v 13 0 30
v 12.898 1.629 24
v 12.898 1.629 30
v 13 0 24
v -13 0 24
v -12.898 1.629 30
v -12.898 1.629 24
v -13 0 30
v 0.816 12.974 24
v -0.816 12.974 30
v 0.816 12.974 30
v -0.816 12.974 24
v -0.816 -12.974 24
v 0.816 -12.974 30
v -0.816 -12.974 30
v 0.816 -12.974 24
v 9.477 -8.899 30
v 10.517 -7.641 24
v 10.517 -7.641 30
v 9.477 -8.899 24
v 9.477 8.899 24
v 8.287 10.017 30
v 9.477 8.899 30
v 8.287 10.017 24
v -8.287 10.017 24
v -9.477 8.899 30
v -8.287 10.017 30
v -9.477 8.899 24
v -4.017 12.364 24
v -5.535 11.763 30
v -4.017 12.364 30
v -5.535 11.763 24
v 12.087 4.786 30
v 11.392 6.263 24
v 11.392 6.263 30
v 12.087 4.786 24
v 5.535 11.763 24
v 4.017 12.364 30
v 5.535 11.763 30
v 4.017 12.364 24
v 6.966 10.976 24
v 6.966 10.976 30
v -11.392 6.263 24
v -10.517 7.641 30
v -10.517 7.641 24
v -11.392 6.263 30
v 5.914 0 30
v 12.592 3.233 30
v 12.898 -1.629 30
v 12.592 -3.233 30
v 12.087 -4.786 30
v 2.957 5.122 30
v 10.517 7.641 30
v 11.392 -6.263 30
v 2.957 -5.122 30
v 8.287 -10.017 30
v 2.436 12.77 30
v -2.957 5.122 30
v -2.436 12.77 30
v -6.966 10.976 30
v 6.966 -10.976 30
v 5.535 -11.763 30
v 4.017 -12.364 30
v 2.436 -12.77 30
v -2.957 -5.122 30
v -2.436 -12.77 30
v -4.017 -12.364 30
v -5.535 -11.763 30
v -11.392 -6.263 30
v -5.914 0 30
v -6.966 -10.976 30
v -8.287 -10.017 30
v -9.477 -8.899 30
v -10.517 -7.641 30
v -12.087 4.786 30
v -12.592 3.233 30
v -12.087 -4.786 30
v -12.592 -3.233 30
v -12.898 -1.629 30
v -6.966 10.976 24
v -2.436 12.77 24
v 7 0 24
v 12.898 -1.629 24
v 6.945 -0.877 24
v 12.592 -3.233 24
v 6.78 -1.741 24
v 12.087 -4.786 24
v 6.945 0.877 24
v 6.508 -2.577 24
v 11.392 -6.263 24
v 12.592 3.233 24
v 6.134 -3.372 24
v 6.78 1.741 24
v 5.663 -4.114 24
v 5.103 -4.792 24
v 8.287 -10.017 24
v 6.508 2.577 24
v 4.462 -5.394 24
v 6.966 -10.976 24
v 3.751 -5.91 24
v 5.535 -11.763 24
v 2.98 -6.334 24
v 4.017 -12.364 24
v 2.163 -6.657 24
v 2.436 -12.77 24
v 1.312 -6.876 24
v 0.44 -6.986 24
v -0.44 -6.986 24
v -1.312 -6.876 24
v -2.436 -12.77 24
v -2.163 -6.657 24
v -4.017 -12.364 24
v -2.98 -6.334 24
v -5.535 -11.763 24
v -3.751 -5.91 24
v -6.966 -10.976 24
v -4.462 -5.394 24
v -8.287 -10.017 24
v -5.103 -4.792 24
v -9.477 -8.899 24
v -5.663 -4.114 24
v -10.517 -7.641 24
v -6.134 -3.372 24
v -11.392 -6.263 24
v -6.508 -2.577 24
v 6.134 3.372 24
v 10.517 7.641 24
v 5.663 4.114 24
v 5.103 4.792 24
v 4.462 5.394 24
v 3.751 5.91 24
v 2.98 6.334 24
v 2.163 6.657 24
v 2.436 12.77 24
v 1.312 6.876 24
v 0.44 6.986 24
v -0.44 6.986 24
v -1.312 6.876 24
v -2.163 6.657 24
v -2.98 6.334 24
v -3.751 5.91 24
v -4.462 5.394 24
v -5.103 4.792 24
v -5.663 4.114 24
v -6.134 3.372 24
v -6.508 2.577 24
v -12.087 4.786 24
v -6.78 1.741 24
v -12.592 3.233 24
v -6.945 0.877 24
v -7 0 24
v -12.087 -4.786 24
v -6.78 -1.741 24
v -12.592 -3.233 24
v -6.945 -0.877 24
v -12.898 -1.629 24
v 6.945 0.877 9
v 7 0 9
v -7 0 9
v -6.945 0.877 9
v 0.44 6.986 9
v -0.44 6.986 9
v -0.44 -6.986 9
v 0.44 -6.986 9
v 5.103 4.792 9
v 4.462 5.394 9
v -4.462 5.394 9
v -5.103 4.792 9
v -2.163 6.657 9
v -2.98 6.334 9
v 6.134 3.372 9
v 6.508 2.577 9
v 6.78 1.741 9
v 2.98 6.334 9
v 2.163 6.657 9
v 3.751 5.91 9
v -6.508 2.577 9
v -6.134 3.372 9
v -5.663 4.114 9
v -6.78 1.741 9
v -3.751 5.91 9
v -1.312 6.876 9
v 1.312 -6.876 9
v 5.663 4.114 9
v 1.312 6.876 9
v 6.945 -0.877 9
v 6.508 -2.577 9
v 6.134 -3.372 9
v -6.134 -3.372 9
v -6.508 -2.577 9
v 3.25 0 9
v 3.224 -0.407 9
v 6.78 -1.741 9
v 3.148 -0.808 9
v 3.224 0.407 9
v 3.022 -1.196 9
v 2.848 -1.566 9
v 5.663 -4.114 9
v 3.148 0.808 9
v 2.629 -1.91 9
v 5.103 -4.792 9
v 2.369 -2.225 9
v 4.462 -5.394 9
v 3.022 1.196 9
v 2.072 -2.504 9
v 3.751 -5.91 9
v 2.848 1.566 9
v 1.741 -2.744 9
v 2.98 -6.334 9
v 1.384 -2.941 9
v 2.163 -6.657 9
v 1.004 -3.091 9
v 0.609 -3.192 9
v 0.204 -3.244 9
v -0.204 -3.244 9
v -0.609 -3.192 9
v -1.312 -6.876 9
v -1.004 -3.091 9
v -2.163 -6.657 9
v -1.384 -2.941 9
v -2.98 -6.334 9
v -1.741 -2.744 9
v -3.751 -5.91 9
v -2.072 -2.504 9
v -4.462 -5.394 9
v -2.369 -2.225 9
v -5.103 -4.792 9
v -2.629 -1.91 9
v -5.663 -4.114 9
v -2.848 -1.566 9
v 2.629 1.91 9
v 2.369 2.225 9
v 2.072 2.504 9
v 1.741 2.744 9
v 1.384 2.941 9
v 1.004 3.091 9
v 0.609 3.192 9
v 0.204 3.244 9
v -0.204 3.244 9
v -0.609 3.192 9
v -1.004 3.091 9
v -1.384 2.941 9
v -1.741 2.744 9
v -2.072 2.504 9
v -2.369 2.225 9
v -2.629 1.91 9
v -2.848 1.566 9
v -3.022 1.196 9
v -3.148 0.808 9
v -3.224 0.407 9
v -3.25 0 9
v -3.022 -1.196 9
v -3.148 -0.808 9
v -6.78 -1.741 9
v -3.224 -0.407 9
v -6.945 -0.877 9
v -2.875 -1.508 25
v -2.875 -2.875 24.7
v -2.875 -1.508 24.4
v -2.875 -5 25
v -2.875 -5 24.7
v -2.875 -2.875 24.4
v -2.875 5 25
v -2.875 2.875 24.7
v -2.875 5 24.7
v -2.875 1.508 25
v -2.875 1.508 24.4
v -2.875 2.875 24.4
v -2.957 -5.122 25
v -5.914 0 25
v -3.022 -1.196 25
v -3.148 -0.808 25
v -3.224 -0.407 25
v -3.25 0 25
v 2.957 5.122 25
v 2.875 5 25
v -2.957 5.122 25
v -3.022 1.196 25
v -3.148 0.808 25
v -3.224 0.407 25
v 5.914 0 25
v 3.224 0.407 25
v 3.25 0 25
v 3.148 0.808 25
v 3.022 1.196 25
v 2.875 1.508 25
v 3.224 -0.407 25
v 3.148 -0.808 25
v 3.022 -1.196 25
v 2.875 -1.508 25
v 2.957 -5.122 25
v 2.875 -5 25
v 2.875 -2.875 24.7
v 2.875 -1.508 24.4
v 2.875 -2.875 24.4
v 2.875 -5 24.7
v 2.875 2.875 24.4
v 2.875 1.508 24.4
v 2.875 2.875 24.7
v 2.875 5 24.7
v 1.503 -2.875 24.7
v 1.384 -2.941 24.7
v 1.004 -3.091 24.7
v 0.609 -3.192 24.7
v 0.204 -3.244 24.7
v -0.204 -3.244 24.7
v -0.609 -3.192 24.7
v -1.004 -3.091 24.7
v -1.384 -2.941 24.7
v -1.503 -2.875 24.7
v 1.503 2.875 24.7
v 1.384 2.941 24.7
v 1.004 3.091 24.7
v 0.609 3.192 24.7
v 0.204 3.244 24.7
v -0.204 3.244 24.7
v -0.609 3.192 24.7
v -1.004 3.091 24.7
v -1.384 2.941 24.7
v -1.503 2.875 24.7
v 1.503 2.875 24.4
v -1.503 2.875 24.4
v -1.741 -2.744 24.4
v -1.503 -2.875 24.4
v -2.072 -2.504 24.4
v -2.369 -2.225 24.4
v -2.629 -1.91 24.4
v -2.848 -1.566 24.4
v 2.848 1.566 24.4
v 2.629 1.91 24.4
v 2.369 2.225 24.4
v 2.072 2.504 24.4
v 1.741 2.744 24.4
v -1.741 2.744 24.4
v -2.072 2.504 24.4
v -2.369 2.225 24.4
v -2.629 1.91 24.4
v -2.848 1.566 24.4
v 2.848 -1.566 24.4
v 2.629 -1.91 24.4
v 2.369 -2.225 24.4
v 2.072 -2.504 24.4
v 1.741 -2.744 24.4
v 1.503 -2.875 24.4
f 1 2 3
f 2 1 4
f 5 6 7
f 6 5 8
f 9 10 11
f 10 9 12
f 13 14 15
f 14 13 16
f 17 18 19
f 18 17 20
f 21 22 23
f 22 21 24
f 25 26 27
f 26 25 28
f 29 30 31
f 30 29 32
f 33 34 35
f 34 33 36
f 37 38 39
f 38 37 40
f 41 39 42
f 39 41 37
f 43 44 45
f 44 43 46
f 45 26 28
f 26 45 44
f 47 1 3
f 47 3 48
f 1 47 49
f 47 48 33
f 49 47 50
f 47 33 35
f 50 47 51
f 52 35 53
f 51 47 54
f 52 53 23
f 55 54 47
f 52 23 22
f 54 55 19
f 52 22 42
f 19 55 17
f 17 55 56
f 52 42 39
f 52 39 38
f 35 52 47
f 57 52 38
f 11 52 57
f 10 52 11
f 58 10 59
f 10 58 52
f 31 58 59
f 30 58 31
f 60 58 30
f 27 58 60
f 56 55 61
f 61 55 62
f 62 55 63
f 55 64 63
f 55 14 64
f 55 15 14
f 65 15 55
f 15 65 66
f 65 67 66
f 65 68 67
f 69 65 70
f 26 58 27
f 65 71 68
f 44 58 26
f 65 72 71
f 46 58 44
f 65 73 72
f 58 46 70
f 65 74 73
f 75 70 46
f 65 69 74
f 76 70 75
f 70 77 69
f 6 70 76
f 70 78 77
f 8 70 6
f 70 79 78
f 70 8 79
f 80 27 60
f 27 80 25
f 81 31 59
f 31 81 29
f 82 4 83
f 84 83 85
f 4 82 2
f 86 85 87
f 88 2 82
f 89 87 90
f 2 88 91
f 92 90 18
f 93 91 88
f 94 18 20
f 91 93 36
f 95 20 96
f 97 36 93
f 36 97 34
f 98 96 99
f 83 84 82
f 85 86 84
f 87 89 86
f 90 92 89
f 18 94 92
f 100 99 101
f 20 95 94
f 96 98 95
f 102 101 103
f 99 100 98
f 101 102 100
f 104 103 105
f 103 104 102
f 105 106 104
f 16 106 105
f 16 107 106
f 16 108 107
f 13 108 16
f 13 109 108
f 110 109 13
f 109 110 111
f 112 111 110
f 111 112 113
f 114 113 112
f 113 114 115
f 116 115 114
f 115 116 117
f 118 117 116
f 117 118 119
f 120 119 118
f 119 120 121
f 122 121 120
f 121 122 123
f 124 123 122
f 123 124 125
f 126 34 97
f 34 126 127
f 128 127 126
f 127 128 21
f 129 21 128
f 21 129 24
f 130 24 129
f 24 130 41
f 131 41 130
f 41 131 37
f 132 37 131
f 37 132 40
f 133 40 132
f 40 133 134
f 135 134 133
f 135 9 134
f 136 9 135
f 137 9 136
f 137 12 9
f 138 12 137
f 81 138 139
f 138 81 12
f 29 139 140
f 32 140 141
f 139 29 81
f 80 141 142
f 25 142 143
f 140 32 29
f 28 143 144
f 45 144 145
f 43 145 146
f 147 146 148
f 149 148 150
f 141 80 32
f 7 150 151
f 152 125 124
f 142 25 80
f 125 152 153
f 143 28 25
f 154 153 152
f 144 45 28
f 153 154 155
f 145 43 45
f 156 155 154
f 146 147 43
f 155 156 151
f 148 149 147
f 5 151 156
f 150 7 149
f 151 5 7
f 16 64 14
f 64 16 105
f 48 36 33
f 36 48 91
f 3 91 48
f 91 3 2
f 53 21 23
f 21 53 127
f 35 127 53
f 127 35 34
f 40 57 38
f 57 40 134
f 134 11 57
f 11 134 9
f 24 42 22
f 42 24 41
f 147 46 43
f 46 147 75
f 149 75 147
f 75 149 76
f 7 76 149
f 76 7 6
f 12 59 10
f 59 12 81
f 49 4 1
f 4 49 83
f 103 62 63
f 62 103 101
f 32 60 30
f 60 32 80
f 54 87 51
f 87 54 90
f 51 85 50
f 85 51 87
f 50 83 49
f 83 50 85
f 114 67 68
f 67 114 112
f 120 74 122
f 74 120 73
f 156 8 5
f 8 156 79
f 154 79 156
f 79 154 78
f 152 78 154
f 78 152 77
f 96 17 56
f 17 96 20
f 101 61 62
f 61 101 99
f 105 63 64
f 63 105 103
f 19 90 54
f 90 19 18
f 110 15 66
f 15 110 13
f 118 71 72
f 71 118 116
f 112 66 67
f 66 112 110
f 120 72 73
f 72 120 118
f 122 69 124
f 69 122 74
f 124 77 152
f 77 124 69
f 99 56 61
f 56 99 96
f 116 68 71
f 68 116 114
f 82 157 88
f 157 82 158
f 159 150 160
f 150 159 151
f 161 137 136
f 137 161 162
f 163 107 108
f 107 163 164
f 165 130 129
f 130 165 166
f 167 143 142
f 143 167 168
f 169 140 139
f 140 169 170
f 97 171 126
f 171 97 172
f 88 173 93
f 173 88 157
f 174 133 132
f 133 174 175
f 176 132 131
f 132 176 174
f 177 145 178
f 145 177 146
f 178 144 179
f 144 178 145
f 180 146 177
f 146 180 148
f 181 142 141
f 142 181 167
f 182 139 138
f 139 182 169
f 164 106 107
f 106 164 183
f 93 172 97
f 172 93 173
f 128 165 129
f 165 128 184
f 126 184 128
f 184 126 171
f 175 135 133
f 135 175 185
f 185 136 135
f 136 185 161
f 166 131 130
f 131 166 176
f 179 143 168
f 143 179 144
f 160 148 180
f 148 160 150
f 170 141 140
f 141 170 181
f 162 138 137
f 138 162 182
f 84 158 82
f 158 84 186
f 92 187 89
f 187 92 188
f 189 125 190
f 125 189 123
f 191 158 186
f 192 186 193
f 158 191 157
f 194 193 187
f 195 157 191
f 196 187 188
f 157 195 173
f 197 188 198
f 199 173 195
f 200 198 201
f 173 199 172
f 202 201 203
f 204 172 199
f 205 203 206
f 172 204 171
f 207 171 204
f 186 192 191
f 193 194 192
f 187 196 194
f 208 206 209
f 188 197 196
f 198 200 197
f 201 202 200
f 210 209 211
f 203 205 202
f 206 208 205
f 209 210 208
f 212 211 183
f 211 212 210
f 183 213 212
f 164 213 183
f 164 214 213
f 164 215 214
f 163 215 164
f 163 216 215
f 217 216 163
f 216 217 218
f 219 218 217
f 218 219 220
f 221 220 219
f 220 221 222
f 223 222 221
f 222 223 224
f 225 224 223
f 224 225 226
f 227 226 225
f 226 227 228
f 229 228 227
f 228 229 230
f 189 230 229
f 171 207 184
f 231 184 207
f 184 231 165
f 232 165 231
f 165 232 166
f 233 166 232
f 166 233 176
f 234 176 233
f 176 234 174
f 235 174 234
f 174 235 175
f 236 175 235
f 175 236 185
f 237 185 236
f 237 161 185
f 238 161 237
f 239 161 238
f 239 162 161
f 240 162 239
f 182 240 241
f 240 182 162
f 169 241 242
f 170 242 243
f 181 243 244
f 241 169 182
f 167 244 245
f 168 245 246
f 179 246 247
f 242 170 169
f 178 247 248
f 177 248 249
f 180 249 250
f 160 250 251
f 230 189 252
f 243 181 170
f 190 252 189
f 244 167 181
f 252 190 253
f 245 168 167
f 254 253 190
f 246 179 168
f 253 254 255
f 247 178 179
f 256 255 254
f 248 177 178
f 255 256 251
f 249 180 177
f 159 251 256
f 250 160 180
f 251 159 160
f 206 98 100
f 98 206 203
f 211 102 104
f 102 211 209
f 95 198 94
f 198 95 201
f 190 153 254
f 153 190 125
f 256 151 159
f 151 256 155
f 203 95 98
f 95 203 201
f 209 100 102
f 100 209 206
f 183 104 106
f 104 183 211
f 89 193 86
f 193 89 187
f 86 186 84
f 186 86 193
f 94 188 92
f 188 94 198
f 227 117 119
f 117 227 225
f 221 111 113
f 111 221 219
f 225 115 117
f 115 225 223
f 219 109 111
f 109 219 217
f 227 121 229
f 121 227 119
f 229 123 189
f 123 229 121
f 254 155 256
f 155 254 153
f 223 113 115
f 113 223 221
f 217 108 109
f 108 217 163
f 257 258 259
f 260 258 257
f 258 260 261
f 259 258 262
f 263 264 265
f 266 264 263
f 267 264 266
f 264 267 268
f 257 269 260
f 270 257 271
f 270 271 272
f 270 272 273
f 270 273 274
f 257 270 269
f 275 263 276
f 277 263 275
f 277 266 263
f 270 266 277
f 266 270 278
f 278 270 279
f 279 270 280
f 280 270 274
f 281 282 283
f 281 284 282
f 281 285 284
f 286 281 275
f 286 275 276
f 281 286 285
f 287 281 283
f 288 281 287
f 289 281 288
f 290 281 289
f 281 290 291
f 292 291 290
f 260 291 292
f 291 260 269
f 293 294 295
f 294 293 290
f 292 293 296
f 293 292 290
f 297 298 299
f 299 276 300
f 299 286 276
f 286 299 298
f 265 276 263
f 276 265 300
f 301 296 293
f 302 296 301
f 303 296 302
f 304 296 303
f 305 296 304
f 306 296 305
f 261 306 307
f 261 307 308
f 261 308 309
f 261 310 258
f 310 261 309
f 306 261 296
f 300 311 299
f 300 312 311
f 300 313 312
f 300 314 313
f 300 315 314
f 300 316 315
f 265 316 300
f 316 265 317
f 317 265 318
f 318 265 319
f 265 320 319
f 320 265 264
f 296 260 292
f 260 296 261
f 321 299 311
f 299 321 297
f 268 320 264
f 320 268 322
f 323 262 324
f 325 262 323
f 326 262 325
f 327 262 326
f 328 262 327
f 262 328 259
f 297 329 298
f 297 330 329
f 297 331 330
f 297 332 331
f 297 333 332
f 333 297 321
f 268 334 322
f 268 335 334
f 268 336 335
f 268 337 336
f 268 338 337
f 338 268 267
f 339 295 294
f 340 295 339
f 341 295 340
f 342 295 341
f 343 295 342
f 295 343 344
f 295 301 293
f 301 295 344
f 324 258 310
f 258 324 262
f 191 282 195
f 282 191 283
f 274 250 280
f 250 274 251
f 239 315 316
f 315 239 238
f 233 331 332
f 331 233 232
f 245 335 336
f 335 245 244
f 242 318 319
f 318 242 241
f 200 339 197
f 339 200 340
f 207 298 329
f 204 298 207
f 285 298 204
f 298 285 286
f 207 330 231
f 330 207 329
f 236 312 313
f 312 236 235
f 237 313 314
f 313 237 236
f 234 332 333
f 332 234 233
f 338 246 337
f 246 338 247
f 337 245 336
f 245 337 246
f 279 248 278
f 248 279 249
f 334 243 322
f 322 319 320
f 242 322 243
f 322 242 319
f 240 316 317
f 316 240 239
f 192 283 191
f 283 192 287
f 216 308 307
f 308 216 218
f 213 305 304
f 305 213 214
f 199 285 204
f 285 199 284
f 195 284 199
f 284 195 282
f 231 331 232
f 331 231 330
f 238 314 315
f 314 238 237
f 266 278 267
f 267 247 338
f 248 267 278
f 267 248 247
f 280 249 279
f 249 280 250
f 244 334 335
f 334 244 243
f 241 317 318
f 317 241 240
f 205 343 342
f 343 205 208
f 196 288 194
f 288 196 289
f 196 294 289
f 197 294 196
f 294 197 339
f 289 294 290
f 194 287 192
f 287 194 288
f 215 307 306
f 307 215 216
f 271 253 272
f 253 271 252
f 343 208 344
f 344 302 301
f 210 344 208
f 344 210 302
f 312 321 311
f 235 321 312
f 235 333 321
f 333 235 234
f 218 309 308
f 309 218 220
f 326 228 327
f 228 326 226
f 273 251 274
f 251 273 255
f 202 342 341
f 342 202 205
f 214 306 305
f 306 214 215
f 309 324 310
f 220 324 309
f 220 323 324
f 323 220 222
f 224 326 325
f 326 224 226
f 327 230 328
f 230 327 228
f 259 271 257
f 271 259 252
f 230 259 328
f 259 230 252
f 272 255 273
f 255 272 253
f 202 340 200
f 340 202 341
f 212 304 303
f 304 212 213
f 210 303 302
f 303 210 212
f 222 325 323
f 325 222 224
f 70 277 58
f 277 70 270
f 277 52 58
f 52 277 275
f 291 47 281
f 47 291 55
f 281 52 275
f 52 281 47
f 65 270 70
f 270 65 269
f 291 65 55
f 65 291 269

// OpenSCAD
$fn = 50;


difference() {
	union() {
		translate(v = [0, 0, 24.0000000000]) {
			cylinder(h = 6, r = 13.0000000000);
		}
		translate(v = [0, 0, 9.0000000000]) {
			cylinder(h = 21, r = 7.0000000000);
		}
	}
	union() {
		translate(v = [0, 0, 30]) {
			rotate(a = [0, 0, 0]) {
				difference() {
					union() {
						#translate(v = [-2.8750000000, -5.0000000000, -5.3000000000]) {
							cube(size = [5.7500000000, 10, 0.3000000000]);
						}
						#translate(v = [-2.8750000000, -2.8750000000, -5.6000000000]) {
							cube(size = [5.7500000000, 5.7500000000, 0.3000000000]);
						}
						#translate(v = [-2.8750000000, -5.0000000000, 0]) {
							cube(size = [5.7500000000, 10, 0.3000000000]);
						}
						#translate(v = [-2.8750000000, -2.8750000000, 0.3000000000]) {
							cube(size = [5.7500000000, 5.7500000000, 0.3000000000]);
						}
						#translate(v = [0, 0, -100.0000000000]) {
							cylinder(h = 200, r = 3.2500000000);
						}
						translate(v = [0, 0, -5]) {
							#linear_extrude(height = 5) {
								polygon(points = [[5.9142500000, 0.0000000000], [2.9571250000, 5.1218907443], [-2.9571250000, 5.1218907443], [-5.9142500000, 0.0000000000], [-2.9571250000, -5.1218907443], [2.9571250000, -5.1218907443]]);
							}
						}
						#translate(v = [-2.8750000000, -5.0000000000, -5.3000000000]) {
							cube(size = [5.7500000000, 10, 0.3000000000]);
						}
						#translate(v = [-2.8750000000, -2.8750000000, -5.6000000000]) {
							cube(size = [5.7500000000, 5.7500000000, 0.3000000000]);
						}
						#translate(v = [-2.8750000000, -5.0000000000, 0]) {
							cube(size = [5.7500000000, 10, 0.3000000000]);
						}
						#translate(v = [-2.8750000000, -2.8750000000, 0.3000000000]) {
							cube(size = [5.7500000000, 5.7500000000, 0.3000000000]);
						}
						#translate(v = [0, 0, -100.0000000000]) {
							cylinder(h = 200, r = 3.2500000000);
						}
						#translate(v = [-2.8750000000, -5.0000000000, -5.3000000000]) {
							cube(size = [5.7500000000, 10, 0.3000000000]);
						}
						#translate(v = [-2.8750000000, -2.8750000000, -5.6000000000]) {
							cube(size = [5.7500000000, 5.7500000000, 0.3000000000]);
						}
						#translate(v = [-2.8750000000, -5.0000000000, 0]) {
							cube(size = [5.7500000000, 10, 0.3000000000]);
						}
						#translate(v = [-2.8750000000, -2.8750000000, 0.3000000000]) {
							cube(size = [5.7500000000, 5.7500000000, 0.3000000000]);
						}
						#translate(v = [0, 0, -100.0000000000]) {
							cylinder(h = 200, r = 3.2500000000);
						}
					}
					union();
				}
			}
		}
		#translate(v = [0, 0, -100.0000000000]) {
			cylinder(h = 200, r = 3.2500000000);
		}
	}
}
